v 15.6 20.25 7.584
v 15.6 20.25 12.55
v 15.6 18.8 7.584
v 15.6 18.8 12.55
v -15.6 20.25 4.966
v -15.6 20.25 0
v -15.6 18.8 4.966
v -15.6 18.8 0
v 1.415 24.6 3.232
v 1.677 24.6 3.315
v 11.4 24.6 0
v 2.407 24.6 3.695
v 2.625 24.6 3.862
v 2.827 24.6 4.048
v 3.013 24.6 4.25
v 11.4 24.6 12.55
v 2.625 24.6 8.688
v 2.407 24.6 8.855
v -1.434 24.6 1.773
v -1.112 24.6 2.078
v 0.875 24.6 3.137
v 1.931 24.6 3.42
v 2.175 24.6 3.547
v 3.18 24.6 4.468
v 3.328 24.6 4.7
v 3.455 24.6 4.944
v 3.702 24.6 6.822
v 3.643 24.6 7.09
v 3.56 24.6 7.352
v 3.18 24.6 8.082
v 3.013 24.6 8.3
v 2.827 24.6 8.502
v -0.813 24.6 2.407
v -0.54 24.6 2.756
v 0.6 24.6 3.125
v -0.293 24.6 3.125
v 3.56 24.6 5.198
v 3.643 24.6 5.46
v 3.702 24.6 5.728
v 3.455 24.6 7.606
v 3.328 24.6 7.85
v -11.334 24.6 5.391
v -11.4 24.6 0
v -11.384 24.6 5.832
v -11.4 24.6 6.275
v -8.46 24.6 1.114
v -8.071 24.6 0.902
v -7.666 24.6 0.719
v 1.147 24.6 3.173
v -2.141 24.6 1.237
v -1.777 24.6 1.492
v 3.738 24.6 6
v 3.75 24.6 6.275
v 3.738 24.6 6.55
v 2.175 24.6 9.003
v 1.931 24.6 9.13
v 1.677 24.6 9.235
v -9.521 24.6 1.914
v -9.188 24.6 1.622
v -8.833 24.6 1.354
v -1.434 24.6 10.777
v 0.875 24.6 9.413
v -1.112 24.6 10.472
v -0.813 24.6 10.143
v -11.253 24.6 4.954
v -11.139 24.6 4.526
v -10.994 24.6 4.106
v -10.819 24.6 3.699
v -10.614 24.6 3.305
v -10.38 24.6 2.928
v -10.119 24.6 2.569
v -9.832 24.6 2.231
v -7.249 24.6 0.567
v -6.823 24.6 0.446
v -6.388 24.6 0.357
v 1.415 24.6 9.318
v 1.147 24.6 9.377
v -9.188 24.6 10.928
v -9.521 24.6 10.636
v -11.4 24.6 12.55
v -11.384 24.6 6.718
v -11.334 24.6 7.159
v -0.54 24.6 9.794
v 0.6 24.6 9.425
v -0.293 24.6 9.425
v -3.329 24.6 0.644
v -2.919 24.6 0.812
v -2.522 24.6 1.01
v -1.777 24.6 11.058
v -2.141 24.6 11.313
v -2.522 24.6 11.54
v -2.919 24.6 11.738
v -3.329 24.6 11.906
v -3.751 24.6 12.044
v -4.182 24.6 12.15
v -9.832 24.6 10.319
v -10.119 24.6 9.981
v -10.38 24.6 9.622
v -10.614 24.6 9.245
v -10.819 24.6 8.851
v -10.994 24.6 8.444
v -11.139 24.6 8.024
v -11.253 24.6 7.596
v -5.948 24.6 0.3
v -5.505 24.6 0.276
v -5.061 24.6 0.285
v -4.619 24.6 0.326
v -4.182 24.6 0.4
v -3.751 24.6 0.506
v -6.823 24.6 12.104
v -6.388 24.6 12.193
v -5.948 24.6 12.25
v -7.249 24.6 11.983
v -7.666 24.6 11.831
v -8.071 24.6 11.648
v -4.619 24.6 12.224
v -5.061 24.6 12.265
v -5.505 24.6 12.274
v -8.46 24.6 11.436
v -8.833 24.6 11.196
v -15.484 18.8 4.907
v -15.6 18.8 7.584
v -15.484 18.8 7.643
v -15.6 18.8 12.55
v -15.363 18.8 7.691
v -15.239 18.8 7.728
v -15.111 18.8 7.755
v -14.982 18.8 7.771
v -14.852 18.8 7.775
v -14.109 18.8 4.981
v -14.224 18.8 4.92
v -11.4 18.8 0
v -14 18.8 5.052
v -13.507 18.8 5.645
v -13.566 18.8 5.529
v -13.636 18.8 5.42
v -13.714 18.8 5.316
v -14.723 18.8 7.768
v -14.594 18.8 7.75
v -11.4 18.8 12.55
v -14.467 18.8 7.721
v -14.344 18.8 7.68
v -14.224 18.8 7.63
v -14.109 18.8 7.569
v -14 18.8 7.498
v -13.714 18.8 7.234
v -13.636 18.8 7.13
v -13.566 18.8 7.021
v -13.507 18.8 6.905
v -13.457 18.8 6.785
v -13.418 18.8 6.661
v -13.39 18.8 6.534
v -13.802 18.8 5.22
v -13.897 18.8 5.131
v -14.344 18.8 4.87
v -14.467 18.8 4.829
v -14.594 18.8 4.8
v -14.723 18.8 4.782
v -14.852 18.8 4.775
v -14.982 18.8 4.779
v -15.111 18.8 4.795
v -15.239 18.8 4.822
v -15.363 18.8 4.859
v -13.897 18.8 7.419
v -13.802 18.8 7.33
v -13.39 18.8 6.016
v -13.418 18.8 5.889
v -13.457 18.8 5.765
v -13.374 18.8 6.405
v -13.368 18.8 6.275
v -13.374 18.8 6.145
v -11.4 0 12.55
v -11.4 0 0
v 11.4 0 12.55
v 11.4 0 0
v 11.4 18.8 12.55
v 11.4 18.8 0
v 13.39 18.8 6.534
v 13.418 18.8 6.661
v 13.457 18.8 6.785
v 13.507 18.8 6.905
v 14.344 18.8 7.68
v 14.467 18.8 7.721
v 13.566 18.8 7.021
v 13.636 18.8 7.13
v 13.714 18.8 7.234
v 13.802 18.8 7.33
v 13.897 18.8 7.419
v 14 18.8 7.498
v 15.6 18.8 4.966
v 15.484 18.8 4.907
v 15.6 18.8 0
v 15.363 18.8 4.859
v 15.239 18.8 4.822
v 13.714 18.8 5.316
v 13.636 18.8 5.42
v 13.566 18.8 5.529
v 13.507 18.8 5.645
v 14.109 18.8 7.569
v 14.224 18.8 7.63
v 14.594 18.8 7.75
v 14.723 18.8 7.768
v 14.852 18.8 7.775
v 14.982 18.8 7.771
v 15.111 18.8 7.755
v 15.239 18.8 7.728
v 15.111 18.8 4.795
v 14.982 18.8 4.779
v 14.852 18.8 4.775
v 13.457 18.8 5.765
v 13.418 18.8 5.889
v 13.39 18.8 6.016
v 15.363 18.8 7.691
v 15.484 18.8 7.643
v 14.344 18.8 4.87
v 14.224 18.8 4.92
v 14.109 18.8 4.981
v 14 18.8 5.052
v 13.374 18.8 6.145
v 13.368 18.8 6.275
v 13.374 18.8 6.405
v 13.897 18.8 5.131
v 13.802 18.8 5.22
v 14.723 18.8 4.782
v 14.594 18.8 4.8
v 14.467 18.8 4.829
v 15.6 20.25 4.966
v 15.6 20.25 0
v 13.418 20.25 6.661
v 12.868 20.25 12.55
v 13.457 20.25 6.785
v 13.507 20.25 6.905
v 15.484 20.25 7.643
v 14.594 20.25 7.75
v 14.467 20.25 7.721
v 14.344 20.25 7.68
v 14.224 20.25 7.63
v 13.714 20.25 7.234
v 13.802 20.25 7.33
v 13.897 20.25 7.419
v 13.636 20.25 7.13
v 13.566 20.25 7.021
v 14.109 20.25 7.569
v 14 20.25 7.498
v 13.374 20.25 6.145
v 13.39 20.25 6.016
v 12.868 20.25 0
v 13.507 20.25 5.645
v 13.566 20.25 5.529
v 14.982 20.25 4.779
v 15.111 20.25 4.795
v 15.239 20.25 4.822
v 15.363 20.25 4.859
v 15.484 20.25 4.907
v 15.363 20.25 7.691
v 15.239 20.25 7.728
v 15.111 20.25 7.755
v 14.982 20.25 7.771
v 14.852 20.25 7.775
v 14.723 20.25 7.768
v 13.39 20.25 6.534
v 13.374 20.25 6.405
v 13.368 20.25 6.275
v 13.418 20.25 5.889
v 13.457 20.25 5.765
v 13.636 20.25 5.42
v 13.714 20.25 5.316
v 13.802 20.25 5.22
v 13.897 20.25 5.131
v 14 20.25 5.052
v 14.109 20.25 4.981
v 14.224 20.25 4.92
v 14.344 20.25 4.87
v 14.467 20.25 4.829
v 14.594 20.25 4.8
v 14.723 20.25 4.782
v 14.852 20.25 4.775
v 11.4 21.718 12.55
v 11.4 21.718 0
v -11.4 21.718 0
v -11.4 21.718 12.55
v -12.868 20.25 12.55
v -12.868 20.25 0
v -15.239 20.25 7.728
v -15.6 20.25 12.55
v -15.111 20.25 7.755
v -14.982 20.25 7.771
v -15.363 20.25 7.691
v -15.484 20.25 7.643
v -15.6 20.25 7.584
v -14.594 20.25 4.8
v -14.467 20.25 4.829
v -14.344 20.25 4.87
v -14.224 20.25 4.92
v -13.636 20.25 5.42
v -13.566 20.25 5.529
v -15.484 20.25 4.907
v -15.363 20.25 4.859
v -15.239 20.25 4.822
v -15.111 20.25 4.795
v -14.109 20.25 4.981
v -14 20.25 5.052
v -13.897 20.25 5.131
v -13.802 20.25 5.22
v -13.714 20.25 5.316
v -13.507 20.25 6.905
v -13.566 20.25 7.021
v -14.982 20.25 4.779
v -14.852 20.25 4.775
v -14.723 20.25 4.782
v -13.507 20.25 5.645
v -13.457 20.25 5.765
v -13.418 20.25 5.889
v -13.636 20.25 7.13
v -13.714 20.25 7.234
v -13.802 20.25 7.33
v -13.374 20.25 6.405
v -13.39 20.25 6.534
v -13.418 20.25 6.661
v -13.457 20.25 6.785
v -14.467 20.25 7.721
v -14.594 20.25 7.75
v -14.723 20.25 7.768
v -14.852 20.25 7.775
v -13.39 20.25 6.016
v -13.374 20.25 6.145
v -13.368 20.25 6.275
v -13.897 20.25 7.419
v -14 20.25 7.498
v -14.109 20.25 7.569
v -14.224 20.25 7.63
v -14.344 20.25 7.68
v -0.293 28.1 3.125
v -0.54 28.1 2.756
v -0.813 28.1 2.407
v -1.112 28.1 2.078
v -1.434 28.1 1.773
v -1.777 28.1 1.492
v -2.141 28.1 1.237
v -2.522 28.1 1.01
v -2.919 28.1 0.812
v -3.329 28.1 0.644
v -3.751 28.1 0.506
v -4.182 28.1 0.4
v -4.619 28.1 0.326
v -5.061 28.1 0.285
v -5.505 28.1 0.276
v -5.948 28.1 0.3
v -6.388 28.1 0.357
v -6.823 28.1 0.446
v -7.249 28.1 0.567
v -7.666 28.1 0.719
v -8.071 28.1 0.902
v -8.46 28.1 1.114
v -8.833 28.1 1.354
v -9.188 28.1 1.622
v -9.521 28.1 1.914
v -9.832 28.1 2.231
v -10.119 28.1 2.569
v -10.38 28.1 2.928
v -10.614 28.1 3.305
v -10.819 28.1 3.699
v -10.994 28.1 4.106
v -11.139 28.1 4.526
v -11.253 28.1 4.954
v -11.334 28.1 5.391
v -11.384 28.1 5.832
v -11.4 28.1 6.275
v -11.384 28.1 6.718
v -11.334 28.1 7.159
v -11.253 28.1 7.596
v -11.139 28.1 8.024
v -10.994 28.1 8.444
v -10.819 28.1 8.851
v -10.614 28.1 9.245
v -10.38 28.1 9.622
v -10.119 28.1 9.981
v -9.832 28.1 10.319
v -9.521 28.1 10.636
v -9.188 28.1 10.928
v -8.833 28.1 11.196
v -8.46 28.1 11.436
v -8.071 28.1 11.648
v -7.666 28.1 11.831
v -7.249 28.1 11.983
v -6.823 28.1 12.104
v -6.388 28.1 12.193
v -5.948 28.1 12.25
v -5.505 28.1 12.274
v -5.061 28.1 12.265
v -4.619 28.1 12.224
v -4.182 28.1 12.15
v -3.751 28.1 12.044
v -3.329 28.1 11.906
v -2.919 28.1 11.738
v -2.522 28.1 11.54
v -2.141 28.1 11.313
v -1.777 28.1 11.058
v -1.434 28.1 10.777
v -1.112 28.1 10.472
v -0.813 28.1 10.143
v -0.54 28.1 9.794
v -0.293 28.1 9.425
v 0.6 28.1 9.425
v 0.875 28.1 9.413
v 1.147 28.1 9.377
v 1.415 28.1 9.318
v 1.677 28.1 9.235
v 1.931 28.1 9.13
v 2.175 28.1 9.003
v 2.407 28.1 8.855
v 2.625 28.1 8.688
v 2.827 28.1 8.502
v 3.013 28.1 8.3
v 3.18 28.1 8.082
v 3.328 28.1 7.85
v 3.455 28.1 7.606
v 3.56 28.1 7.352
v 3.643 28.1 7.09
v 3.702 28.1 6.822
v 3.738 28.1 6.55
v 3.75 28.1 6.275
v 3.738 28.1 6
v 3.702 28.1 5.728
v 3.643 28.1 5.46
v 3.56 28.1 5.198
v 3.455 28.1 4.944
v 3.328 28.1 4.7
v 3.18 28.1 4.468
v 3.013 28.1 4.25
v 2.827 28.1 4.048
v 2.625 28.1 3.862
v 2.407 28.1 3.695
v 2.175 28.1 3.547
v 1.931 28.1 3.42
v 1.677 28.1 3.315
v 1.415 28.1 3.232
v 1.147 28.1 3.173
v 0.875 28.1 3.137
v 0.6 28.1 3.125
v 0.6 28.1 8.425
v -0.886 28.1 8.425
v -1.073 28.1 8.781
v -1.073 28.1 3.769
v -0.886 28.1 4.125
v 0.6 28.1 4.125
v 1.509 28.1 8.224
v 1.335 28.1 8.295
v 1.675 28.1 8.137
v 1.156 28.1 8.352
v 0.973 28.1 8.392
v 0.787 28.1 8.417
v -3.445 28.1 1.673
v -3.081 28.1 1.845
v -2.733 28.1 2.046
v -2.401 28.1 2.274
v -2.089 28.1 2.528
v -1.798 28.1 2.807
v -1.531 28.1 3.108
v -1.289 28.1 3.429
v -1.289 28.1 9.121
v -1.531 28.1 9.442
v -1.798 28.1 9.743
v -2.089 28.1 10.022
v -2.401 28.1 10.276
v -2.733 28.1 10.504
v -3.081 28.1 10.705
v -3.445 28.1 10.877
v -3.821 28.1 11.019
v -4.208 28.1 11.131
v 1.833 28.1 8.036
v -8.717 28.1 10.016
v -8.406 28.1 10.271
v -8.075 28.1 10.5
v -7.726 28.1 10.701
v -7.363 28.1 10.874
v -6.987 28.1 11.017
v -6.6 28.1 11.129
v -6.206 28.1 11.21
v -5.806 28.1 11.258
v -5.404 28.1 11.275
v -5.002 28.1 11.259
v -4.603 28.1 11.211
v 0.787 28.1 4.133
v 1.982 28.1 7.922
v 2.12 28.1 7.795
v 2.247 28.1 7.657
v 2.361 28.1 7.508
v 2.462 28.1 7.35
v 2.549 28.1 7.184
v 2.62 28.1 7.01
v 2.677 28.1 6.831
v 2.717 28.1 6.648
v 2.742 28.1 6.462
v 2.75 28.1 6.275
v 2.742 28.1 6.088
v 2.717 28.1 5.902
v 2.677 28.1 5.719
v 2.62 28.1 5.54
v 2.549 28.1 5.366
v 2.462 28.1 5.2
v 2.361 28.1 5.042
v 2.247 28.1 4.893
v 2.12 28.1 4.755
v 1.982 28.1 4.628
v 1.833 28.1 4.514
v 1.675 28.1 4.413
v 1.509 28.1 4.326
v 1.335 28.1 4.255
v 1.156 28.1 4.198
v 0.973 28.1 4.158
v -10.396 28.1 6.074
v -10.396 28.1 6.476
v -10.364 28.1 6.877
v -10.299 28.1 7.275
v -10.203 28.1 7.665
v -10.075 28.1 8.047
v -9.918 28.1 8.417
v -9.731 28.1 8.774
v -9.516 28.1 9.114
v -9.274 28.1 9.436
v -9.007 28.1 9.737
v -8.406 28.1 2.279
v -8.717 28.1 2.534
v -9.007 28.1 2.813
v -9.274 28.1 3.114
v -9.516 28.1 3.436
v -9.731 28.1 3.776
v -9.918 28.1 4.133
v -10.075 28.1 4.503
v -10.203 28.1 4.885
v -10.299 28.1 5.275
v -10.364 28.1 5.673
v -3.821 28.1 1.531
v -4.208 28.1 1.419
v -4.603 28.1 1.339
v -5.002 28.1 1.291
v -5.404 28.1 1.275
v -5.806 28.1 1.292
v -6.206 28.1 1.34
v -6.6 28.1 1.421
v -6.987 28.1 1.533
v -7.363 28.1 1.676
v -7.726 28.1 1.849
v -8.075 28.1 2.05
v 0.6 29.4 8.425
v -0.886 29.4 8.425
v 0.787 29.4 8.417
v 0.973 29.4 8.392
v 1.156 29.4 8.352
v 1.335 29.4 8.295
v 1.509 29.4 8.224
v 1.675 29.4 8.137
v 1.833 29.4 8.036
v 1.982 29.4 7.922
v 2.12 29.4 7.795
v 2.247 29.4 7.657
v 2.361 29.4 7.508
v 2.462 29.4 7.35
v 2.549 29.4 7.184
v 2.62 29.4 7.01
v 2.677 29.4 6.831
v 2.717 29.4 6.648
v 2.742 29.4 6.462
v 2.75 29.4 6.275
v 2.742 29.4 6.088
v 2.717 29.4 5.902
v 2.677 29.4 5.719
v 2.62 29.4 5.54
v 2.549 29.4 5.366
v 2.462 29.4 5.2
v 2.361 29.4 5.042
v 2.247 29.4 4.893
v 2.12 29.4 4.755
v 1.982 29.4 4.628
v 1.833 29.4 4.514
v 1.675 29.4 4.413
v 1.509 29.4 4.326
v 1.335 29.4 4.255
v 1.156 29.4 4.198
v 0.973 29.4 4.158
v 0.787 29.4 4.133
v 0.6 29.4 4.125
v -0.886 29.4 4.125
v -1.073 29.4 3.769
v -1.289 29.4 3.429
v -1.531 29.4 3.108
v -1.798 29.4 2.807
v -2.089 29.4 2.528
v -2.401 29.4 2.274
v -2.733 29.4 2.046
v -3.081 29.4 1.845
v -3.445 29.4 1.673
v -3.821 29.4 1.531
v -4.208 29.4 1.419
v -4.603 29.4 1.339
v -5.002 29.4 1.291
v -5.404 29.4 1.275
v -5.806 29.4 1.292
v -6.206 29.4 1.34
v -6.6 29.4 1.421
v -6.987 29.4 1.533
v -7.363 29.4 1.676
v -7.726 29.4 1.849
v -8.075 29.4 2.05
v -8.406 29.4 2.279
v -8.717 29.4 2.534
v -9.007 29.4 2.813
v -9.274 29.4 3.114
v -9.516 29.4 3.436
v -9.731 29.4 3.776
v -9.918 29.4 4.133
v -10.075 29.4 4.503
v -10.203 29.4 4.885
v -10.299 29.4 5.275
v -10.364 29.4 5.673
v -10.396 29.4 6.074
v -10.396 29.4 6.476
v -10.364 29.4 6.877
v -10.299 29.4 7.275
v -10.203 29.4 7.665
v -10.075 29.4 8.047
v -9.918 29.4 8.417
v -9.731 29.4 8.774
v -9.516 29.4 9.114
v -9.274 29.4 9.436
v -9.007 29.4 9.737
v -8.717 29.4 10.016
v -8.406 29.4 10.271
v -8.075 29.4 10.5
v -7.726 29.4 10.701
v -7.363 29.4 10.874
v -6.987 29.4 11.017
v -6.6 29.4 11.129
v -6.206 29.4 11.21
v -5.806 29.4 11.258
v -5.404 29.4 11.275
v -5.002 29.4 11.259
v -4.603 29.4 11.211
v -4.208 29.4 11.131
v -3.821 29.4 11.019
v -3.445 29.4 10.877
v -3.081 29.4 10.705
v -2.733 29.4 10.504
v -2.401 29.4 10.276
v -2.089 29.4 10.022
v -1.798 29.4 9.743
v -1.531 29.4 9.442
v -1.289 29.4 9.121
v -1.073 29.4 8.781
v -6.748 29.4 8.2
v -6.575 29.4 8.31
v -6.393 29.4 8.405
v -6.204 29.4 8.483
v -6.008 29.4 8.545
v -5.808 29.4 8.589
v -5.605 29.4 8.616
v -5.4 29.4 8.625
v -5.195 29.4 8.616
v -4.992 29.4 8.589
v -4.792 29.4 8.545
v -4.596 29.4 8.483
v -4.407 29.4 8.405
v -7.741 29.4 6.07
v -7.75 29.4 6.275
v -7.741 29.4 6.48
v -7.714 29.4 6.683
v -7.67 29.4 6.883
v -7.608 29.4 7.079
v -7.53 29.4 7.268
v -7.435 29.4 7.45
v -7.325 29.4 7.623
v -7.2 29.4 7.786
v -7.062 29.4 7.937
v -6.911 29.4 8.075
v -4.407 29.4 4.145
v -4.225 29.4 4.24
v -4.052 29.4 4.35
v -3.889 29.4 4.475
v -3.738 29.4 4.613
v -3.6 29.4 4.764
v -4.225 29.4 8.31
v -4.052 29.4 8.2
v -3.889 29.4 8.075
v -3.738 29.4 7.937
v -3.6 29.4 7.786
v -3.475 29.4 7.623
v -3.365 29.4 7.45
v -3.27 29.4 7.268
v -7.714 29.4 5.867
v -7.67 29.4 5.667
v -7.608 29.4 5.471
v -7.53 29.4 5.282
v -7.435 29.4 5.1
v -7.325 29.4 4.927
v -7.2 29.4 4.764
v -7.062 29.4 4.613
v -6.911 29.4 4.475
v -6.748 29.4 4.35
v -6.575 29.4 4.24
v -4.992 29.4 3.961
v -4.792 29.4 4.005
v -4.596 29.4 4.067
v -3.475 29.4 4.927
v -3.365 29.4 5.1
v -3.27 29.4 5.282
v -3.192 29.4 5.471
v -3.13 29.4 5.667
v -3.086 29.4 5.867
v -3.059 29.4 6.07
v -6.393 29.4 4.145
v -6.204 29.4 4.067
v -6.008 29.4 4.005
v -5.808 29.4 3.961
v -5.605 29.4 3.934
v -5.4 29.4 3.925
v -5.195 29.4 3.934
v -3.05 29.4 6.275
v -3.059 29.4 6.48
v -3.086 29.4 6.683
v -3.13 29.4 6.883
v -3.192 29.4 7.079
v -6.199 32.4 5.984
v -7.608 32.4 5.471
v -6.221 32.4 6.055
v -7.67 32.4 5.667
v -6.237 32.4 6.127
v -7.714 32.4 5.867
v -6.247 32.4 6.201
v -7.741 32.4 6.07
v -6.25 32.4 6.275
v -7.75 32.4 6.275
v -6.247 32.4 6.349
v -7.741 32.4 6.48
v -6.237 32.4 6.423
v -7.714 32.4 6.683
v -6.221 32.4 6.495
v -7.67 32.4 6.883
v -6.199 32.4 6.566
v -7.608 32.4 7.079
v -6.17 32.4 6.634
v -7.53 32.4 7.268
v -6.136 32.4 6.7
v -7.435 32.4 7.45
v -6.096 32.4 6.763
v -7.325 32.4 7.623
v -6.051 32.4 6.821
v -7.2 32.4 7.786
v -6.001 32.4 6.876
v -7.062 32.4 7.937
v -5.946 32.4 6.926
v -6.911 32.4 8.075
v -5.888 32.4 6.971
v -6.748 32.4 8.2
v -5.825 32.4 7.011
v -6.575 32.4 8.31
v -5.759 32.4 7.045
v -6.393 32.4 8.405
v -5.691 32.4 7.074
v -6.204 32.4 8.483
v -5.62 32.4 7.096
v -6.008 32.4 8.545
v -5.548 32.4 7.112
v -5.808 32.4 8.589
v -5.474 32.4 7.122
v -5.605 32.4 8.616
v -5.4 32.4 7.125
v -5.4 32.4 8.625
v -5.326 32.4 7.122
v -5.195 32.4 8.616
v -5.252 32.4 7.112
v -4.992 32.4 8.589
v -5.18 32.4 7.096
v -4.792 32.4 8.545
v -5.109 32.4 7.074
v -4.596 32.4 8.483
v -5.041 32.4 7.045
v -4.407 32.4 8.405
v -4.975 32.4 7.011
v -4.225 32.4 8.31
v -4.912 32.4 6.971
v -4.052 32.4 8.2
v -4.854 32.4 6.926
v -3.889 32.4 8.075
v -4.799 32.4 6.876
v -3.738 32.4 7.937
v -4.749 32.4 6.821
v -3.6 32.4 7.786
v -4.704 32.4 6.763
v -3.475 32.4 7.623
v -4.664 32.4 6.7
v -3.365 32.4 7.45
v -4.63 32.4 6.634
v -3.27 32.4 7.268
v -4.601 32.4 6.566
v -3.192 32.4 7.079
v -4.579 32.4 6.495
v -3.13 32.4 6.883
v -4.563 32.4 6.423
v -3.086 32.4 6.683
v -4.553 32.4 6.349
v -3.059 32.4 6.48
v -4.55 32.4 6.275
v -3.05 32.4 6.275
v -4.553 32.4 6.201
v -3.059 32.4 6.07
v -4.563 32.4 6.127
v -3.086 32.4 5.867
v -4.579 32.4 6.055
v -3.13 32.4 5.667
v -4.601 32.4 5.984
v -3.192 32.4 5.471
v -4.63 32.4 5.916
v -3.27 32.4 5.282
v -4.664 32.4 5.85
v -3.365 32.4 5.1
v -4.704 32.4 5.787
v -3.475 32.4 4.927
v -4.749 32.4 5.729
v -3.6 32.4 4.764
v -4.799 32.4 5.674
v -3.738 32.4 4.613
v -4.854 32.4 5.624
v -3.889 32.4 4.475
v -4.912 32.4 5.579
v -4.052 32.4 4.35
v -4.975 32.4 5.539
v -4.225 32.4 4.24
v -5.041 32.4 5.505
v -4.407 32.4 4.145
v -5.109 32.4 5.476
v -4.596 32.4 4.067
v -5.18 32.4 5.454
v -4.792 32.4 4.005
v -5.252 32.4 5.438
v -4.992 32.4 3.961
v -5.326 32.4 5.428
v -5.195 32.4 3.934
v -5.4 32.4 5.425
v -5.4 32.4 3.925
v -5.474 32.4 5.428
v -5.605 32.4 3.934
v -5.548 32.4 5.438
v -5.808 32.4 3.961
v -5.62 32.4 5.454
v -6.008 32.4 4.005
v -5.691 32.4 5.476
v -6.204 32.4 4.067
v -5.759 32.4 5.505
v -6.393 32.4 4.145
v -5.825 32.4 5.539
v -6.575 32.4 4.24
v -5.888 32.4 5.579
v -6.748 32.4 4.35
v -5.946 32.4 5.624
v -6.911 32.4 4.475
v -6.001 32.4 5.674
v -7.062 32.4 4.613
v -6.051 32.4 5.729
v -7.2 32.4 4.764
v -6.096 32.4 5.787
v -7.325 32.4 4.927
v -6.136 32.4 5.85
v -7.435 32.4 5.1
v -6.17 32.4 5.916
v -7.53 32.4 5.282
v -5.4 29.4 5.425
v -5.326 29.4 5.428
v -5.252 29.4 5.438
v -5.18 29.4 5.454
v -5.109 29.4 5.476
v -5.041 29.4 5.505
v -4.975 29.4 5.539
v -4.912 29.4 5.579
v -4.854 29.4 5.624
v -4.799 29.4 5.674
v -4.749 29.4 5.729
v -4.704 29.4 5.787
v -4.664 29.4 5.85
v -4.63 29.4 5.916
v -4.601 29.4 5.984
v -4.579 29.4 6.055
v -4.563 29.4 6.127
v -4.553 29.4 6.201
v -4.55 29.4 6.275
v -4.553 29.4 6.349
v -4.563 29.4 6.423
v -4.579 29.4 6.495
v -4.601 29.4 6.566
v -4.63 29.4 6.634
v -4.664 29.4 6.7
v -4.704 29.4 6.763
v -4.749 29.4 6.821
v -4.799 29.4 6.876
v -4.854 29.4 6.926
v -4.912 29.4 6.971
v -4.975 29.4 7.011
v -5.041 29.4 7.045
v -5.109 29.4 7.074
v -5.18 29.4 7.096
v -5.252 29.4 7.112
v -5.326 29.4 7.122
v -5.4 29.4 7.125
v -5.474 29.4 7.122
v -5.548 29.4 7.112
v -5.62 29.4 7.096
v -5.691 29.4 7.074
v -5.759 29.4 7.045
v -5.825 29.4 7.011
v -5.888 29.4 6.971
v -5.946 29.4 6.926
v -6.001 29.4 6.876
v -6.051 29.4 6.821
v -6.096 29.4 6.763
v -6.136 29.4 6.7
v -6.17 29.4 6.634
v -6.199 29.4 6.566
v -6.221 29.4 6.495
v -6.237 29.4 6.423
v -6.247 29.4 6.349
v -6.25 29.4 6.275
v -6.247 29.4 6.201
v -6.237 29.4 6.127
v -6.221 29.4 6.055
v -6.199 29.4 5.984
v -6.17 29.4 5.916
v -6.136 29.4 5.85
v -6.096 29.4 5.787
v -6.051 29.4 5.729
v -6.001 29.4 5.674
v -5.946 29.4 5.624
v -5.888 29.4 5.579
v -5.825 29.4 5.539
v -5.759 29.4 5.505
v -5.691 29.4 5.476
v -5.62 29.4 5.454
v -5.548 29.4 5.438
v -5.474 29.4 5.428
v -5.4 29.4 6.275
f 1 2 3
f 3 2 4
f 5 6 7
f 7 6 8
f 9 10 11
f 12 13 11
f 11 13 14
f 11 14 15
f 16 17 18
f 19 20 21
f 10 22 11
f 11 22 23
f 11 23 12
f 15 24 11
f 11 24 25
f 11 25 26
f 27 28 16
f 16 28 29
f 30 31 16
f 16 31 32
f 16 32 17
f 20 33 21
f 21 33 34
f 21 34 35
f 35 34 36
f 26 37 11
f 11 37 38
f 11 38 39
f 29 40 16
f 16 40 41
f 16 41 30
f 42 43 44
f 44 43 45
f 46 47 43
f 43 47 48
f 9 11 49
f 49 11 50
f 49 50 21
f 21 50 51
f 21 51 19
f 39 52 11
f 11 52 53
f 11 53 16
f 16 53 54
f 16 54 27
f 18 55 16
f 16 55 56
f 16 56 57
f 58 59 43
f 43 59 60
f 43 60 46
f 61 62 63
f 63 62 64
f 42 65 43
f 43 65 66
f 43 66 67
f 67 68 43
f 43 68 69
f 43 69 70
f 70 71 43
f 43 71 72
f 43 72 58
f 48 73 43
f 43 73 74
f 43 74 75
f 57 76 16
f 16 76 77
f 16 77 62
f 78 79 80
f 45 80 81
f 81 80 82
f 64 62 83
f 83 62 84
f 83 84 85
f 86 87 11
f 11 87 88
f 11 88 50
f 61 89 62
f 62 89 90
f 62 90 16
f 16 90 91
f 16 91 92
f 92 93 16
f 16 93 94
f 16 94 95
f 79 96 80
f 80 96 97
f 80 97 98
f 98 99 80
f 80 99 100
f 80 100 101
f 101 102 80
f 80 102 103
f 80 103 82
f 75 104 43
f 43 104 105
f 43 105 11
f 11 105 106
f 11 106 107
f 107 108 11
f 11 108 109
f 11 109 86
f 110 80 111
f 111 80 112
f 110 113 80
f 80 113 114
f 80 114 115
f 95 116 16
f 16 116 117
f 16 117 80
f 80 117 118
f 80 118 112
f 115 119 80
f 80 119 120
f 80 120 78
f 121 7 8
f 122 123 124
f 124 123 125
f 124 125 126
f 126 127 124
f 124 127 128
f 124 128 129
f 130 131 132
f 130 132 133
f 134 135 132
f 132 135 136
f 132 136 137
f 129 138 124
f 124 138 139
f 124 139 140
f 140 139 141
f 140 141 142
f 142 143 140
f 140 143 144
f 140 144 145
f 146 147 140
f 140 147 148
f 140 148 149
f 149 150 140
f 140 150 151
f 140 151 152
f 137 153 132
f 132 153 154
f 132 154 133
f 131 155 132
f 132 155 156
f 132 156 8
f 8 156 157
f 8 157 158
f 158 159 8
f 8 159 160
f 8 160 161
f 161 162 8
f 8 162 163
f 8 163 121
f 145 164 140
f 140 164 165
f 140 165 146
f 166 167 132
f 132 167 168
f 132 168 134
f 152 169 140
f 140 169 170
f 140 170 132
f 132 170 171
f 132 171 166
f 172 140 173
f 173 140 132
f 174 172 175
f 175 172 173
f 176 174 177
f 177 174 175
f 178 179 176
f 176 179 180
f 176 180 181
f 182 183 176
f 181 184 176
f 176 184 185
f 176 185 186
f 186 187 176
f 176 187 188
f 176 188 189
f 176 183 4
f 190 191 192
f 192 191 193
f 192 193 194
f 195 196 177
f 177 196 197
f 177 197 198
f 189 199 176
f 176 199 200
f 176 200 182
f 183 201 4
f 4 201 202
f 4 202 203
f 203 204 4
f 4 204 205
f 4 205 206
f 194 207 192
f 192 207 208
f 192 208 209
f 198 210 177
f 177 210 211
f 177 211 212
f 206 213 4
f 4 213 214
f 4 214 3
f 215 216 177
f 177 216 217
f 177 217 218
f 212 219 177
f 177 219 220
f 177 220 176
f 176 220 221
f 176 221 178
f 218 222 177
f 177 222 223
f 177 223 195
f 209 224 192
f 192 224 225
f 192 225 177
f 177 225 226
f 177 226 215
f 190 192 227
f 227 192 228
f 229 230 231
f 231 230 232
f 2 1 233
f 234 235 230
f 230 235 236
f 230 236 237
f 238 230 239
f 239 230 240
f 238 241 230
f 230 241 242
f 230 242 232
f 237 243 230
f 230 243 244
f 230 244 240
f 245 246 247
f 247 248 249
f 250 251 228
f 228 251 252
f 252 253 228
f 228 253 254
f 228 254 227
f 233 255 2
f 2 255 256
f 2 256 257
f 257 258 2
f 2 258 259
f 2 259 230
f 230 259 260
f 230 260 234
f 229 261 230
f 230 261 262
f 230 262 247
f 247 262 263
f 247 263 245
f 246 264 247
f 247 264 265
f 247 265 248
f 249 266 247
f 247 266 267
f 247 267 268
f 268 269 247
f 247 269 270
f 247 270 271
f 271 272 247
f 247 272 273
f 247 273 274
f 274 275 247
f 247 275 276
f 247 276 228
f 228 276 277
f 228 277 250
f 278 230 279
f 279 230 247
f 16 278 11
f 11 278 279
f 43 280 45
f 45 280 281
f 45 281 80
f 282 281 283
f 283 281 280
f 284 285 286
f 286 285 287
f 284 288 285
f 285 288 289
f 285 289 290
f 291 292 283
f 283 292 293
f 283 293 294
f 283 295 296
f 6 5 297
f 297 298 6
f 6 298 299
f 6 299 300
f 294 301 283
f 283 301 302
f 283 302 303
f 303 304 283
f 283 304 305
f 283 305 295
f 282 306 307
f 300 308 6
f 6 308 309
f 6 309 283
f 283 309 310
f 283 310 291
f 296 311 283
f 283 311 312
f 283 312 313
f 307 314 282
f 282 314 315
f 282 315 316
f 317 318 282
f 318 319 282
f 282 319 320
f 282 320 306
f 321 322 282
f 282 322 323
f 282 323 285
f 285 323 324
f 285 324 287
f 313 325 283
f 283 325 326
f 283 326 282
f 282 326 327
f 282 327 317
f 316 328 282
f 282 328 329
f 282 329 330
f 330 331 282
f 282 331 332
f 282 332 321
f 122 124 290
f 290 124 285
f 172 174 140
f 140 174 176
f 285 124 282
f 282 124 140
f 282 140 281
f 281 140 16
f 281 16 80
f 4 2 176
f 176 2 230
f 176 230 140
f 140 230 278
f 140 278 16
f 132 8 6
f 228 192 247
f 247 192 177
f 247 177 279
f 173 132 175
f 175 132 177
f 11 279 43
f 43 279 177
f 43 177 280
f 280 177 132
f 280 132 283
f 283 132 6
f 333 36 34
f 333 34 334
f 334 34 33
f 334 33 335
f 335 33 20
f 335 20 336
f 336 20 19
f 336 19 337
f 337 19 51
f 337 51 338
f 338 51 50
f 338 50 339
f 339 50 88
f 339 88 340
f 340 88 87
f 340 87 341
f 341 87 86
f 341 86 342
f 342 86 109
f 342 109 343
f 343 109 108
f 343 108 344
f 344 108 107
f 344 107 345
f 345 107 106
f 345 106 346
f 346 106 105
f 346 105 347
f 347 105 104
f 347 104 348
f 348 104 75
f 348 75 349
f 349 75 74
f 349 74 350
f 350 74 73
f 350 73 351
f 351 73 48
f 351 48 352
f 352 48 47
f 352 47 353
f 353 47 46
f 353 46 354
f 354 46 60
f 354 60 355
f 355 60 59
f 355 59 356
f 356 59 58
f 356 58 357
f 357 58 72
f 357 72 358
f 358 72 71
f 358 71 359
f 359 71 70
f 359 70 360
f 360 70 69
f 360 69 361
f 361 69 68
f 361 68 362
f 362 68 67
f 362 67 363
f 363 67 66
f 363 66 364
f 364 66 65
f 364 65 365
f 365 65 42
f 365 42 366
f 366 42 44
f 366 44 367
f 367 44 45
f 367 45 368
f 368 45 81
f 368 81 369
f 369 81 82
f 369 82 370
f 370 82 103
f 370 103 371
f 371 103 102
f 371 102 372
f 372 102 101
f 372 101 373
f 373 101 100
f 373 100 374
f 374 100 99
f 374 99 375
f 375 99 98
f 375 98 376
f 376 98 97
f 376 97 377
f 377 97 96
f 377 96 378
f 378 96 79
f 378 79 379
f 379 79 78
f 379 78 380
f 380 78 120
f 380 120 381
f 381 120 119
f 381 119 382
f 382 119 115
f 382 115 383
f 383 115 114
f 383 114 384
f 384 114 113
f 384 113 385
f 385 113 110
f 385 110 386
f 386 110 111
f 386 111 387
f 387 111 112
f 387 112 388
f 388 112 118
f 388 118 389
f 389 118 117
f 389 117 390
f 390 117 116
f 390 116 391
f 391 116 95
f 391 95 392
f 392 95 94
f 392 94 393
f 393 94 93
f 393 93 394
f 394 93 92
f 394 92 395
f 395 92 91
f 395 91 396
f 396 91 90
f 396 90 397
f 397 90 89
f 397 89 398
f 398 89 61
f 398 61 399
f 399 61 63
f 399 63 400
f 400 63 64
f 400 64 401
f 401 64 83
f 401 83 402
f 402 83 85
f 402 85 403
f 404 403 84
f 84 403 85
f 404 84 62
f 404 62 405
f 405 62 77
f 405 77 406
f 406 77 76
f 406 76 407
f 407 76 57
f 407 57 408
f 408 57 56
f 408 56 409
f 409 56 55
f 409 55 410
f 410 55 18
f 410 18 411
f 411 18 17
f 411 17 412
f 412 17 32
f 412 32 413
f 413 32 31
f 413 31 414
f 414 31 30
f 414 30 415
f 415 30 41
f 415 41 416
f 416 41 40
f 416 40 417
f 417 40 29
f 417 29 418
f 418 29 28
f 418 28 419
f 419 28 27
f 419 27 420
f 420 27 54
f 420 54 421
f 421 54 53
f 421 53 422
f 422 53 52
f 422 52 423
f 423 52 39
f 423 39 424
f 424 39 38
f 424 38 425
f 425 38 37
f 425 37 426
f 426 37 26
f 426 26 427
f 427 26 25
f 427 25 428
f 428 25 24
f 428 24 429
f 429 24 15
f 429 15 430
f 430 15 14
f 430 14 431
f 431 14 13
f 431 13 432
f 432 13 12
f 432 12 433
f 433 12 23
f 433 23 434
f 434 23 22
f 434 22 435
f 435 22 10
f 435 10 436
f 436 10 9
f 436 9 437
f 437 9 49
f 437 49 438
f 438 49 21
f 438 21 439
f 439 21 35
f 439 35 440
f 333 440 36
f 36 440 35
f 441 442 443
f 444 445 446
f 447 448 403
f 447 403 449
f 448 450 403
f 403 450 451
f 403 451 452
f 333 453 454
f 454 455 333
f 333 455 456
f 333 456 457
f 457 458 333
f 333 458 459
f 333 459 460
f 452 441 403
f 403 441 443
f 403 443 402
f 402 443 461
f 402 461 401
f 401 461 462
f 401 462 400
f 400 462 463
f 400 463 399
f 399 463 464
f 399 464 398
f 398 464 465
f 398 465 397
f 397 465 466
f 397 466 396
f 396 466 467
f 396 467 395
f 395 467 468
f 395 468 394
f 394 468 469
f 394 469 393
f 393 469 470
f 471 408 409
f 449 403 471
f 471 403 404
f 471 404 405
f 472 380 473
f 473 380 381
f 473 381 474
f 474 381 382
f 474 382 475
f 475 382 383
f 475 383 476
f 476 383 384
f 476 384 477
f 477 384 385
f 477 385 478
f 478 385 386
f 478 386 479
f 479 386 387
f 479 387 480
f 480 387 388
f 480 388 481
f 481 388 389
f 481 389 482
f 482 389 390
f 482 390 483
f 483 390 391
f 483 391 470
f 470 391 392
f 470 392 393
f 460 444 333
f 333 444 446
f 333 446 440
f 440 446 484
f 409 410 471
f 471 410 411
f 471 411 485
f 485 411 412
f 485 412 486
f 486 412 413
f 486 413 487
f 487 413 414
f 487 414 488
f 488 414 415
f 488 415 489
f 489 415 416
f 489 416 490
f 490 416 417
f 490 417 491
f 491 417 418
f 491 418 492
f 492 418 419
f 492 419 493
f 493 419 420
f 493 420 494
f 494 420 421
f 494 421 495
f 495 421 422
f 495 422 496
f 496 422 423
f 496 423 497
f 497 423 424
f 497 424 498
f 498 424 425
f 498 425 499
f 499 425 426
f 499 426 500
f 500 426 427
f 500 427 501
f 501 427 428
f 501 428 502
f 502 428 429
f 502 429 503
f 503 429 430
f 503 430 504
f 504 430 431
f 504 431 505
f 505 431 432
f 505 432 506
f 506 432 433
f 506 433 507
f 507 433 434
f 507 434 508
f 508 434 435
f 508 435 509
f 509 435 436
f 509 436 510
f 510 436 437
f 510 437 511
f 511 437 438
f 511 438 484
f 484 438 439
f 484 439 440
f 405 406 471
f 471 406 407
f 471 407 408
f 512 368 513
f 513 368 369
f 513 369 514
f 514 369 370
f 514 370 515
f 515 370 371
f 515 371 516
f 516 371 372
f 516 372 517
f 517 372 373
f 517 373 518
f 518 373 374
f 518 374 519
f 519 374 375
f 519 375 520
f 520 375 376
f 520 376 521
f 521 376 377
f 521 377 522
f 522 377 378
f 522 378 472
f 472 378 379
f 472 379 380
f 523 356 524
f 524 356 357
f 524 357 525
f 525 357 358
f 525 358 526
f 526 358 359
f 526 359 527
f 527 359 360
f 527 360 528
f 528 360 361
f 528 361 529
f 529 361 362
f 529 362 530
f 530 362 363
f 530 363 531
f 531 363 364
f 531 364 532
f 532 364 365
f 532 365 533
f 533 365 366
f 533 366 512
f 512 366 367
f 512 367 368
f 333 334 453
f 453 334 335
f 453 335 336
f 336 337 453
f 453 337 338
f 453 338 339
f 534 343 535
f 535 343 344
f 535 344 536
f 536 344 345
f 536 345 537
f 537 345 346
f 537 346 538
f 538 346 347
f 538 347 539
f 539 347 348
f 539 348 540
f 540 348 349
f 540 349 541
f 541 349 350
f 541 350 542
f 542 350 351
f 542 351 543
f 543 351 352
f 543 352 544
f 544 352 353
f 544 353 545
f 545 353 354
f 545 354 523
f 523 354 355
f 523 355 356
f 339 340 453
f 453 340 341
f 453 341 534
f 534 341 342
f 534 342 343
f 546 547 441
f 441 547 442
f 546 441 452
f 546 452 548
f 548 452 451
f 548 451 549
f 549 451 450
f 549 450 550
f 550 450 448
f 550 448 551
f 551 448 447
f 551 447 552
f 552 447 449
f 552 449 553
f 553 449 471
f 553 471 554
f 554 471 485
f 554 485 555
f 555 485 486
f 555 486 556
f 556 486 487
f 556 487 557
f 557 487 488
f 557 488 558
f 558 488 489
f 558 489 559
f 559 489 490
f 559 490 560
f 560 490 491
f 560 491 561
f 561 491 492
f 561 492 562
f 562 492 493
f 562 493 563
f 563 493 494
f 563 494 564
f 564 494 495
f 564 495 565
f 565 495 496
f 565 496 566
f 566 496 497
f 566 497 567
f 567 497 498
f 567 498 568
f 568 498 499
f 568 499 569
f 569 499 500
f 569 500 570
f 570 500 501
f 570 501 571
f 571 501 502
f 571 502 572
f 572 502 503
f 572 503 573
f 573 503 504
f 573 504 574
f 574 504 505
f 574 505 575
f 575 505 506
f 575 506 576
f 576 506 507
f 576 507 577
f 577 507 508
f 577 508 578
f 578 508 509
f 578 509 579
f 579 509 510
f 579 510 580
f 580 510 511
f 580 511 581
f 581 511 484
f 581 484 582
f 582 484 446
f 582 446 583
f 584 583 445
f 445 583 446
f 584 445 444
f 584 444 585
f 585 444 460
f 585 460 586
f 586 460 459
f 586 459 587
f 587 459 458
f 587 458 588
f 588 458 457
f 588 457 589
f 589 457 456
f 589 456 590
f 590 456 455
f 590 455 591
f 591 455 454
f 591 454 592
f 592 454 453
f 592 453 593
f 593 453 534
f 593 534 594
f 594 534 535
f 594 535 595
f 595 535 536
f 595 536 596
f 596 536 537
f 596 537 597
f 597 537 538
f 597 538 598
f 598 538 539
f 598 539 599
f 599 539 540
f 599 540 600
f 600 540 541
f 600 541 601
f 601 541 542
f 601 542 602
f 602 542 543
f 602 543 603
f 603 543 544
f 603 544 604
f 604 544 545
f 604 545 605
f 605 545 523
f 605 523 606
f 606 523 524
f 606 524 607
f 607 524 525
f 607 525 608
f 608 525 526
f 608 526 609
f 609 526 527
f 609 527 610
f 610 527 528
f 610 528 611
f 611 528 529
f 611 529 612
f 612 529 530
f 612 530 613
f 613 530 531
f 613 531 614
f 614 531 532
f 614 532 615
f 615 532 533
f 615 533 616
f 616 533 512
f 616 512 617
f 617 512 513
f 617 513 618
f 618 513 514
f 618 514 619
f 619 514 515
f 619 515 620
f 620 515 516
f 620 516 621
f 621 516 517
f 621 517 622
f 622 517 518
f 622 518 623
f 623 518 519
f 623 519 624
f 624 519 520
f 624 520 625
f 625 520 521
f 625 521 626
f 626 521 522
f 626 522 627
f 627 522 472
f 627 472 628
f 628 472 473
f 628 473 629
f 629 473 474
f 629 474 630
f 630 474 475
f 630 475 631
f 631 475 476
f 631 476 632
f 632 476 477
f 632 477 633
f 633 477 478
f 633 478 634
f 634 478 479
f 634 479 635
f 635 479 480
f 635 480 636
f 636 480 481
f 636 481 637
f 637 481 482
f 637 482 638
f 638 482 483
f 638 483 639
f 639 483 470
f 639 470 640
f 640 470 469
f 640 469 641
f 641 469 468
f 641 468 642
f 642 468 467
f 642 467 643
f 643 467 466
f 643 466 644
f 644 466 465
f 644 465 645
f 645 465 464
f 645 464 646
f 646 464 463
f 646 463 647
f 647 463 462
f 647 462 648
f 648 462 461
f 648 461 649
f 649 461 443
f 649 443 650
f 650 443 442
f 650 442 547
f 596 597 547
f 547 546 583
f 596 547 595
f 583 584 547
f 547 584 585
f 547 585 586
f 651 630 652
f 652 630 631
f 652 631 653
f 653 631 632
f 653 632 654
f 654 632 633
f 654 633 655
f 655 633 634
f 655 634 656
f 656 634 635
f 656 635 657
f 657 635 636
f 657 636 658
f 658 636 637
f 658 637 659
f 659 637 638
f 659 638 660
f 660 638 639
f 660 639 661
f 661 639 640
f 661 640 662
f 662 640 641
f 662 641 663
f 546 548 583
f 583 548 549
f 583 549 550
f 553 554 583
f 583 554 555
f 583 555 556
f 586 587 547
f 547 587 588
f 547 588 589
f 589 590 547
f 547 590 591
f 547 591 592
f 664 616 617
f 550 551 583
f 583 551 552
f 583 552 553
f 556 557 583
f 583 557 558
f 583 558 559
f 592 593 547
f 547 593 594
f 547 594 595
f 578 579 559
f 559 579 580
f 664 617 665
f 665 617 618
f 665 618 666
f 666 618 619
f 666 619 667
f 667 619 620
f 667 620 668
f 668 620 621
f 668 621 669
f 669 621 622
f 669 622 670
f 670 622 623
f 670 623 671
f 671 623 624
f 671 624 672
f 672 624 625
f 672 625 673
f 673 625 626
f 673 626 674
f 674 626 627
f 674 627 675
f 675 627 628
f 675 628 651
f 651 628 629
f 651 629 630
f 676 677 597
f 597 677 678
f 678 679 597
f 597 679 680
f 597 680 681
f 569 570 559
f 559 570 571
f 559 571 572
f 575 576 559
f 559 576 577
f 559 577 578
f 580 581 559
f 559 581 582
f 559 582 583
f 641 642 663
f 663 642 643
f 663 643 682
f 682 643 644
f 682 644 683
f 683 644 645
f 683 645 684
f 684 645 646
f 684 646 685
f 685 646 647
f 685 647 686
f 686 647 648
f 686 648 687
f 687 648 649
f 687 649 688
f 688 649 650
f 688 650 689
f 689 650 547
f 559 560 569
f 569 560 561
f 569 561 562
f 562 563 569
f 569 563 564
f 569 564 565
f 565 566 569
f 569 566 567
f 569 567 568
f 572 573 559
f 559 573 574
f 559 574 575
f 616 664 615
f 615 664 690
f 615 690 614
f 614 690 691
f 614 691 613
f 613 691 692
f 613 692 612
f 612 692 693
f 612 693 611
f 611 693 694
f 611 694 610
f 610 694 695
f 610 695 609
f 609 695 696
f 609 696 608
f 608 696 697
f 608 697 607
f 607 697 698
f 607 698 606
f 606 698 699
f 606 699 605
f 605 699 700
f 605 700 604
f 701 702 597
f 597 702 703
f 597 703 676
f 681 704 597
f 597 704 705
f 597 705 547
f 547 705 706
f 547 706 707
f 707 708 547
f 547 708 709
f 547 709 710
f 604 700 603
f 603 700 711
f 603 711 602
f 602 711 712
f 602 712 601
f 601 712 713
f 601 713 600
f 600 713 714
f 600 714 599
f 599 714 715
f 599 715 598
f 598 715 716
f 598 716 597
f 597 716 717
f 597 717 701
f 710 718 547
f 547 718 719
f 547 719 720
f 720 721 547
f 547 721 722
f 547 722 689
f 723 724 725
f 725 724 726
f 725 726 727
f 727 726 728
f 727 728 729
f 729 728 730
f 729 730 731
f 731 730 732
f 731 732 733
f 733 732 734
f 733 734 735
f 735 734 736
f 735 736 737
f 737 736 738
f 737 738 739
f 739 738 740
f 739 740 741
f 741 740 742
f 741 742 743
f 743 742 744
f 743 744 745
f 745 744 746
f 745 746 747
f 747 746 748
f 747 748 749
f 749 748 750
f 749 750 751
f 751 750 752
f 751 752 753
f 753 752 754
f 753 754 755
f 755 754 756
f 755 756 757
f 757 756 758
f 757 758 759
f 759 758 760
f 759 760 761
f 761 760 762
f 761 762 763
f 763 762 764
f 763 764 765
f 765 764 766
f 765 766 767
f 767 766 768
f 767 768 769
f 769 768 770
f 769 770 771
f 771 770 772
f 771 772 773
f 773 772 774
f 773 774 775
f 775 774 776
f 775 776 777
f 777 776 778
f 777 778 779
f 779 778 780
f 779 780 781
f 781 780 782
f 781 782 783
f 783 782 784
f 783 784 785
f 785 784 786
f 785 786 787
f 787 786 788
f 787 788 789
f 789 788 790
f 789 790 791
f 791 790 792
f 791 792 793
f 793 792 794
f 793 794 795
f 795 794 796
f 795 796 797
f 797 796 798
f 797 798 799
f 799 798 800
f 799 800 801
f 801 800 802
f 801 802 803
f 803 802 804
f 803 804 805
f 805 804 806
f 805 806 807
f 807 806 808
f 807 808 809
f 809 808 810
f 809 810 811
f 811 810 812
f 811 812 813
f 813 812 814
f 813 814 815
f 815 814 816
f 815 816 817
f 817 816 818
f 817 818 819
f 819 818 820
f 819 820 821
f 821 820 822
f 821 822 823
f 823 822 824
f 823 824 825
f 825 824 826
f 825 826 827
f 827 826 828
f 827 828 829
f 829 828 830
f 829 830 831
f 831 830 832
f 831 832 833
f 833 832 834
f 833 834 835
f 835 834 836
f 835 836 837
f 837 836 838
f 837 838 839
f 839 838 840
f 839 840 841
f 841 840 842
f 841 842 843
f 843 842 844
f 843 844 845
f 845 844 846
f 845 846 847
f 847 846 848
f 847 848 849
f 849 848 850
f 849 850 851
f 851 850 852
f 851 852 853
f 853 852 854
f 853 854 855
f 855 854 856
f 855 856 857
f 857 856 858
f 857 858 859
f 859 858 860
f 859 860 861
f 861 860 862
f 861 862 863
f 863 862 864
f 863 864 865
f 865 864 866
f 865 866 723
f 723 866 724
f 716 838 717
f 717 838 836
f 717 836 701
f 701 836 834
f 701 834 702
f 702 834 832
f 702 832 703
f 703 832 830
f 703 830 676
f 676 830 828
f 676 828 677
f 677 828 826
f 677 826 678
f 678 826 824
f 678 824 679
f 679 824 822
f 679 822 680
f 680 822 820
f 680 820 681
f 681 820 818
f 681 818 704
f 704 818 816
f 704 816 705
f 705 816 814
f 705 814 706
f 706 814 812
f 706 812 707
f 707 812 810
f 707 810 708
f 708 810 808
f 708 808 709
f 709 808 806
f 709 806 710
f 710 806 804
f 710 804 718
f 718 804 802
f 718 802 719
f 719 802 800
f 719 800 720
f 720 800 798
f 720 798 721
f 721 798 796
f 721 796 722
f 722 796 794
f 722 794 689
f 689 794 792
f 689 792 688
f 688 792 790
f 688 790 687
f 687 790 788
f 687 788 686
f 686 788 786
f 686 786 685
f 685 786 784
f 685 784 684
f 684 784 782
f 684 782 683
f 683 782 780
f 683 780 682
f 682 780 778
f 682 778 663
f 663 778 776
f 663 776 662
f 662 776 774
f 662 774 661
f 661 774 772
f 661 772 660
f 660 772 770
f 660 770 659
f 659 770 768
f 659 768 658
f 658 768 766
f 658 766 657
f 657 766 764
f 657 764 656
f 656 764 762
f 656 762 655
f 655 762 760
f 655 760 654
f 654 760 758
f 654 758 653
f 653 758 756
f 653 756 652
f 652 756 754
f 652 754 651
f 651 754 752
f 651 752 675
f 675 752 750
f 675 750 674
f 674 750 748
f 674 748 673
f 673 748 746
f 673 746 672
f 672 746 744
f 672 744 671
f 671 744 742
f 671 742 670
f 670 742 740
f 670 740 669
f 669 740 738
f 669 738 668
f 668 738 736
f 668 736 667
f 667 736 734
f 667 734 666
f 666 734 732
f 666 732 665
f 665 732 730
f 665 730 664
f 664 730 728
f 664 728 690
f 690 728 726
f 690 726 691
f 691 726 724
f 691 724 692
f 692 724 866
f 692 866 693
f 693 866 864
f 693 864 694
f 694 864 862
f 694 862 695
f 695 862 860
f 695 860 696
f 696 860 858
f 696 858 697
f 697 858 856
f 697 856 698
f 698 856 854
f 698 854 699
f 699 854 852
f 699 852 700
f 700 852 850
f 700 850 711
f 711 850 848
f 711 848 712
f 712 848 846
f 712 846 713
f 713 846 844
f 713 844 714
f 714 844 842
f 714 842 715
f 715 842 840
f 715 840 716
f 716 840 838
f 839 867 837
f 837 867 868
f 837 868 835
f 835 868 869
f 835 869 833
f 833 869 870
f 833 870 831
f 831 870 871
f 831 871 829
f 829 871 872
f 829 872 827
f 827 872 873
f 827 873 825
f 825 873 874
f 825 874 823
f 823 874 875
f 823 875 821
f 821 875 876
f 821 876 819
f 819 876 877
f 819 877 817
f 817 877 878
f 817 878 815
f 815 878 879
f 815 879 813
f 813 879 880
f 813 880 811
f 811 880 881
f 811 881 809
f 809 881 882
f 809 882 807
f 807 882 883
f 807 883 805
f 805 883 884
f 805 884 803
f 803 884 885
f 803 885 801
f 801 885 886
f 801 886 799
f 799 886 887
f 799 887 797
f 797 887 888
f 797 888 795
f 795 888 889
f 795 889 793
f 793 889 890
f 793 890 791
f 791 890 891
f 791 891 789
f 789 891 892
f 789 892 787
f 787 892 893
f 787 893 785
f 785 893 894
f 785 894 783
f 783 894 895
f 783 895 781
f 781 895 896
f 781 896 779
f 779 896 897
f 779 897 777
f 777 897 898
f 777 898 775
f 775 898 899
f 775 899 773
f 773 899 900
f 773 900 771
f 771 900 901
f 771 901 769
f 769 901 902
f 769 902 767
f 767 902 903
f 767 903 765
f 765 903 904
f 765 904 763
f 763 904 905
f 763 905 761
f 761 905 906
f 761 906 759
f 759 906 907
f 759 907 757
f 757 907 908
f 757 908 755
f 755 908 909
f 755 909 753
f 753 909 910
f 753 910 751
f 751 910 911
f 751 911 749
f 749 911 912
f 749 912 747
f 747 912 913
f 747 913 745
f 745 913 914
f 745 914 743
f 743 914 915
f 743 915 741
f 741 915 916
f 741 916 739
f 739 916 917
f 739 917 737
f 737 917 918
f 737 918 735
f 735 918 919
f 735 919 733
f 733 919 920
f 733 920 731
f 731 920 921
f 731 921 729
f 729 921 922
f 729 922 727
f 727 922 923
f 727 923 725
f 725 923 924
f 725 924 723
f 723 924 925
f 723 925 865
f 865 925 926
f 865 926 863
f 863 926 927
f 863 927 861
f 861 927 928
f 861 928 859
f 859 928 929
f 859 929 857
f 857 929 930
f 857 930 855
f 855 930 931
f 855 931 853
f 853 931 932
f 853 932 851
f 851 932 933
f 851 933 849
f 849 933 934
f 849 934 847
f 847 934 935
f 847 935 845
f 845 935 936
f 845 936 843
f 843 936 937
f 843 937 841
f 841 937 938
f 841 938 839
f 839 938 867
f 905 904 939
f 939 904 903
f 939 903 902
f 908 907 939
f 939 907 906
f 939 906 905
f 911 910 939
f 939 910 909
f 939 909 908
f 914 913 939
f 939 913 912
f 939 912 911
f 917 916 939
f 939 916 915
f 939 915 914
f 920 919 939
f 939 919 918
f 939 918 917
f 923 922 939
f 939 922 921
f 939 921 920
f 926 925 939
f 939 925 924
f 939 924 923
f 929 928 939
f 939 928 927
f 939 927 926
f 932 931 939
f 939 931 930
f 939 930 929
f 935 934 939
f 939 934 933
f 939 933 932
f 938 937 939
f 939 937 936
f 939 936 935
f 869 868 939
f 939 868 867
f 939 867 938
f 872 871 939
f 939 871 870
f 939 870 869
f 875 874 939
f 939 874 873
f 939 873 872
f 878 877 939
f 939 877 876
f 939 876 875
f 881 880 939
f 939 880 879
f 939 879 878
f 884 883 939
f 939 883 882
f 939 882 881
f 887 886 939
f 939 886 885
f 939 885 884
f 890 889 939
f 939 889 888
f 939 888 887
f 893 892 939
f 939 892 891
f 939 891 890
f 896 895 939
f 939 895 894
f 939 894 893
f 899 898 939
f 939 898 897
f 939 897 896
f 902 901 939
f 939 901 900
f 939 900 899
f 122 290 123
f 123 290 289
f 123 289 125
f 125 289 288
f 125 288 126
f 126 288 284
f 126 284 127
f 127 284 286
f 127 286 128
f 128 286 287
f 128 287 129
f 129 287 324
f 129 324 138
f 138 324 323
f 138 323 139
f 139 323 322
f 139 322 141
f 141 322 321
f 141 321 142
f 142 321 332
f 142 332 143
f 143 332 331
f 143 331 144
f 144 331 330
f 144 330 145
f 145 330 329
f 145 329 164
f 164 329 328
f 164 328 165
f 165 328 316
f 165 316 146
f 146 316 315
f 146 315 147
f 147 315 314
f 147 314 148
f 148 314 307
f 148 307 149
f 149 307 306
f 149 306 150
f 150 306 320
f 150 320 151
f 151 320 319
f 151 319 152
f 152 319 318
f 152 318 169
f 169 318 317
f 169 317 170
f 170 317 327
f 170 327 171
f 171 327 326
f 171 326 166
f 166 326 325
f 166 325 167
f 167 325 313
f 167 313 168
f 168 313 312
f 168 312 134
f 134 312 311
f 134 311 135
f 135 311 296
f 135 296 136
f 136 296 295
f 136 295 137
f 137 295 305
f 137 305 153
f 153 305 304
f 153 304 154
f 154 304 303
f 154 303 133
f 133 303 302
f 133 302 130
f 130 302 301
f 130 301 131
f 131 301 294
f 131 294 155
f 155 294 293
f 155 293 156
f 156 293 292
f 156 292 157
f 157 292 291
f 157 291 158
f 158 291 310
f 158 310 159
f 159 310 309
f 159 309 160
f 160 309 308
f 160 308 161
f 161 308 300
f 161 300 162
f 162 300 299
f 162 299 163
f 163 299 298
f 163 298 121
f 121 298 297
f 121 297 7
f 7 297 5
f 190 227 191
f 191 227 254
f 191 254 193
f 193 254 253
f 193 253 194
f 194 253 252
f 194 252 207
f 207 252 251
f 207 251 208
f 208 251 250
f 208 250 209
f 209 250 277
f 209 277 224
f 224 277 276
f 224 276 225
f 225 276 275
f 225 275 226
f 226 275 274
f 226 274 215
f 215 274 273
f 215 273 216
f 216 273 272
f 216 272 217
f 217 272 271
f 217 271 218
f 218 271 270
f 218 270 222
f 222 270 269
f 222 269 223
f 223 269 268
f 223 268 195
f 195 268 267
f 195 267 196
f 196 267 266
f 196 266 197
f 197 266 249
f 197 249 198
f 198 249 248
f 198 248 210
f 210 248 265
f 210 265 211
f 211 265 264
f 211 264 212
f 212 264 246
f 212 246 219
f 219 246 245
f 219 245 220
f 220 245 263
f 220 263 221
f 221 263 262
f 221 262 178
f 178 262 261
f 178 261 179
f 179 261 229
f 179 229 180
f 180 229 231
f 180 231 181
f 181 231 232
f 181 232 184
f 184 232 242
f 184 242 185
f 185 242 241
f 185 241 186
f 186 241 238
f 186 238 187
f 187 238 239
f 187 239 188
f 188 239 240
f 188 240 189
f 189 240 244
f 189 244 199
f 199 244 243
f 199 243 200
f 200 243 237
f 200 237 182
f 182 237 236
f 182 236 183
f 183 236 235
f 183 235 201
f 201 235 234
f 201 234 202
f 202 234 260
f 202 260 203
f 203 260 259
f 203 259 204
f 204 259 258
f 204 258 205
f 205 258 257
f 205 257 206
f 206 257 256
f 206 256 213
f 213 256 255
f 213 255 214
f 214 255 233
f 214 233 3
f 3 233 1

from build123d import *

# Parameters (mm, degrees)
ESTRUSIONE_ESTRUSIONE2_DEPTH = 12.55
ESTRUSIONE_ESTRUSIONE3_DEPTH = 3.5
ESTRUSIONE_ESTRUSIONE4_DEPTH = 1.3
SCHIZZO4_R                   = 2.35
SCHIZZO4_R_2                 = 0.85
ESTRUSIONE_ESTRUSIONE5_DEPTH = 3
TAGLIO_ESTRUSIONE1_REACH     = 30.477
SCHIZZO6_R                   = 1.5


with BuildPart() as part:
    # Schizzo1 → Estrusione-Estrusione2 (new body)
    with BuildSketch(Plane.XY):
        Polygon((11.4, 21.717893219), (12.867893219, 20.25), (15.6, 20.25), (15.6, 18.8), (11.4, 18.8), (11.4, 0), (-11.4, 0), (-11.4, 18.8), (-15.6, 18.8), (-15.6, 20.25), (-12.867893219, 20.25), (-11.4, 21.717893219), (-11.4, 24.6), (11.4, 24.6), align=None)
    extrude(amount=ESTRUSIONE_ESTRUSIONE2_DEPTH)

    # Schizzo2 → Estrusione-Estrusione3 (add)
    with BuildSketch(Plane(origin=(0, 24.6, 0), x_dir=(1, 0, 0), z_dir=(0, 1, 0))):
        with BuildLine():
            Line((0.6, -3.125), (-0.293386641, -3.125))
            ThreePointArc((-0.293386641, -3.125), (-11.4, -6.275), (-0.293386641, -9.425))
            Line((-0.293386641, -9.425), (0.6, -9.425))
            ThreePointArc((0.6, -9.425), (3.75, -6.275), (0.6, -3.125))
        make_face()
    extrude(amount=ESTRUSIONE_ESTRUSIONE3_DEPTH)

    # Schizzo3 → Estrusione-Estrusione4 (add)
    with BuildSketch(Plane(origin=(0, 28.1, 0), x_dir=(1, 0, 0), z_dir=(0, 1, 0))):
        with BuildLine():
            Line((-0.885855563, -8.425), (0.6, -8.425))
            ThreePointArc((0.6, -8.425), (2.75, -6.275), (0.6, -4.125))
            Line((0.6, -4.125), (-0.885855563, -4.125))
            ThreePointArc((-0.885855563, -4.125), (-10.4, -6.275), (-0.885855563, -8.425))
        make_face()
    extrude(amount=ESTRUSIONE_ESTRUSIONE4_DEPTH)

    # Schizzo4 → Estrusione-Estrusione5 (add)
    with BuildSketch(Plane(origin=(0, 29.4, 0), x_dir=(1, 0, 0), z_dir=(0, 1, 0))):
        with Locations(Location((-5.4, -6.275, 0), (0, 0, 270))):
            Circle(SCHIZZO4_R)
        with Locations(Location((-5.4, -6.275, 0), (0, 0, 270))):
            Circle(SCHIZZO4_R_2, mode=Mode.SUBTRACT)
    extrude(amount=ESTRUSIONE_ESTRUSIONE5_DEPTH)

    # Schizzo6 → Taglio-Estrusione1 (cut, up to next)
    with BuildSketch(Plane(origin=(0, 20.25, 0), x_dir=(1, 0, 0), z_dir=(0, 1, 0)), mode=Mode.PRIVATE) as taglio_estrusione1_sk1:
        with Locations((-14.867893219, -6.275)):
            Circle(SCHIZZO6_R)
    taglio_estrusione1_tool1 = extrude(taglio_estrusione1_sk1.sketch, amount=-TAGLIO_ESTRUSIONE1_REACH, mode=Mode.PRIVATE) & part.part
    # Schizzo6 → Taglio-Estrusione1 (cut, up to next)
    with BuildSketch(Plane(origin=(0, 20.25, 0), x_dir=(1, 0, 0), z_dir=(0, 1, 0)), mode=Mode.PRIVATE) as taglio_estrusione1_sk2:
        with Locations((14.867893219, -6.275)):
            Circle(SCHIZZO6_R)
    taglio_estrusione1_tool2 = extrude(taglio_estrusione1_sk2.sketch, amount=-TAGLIO_ESTRUSIONE1_REACH, mode=Mode.PRIVATE) & part.part
    add(taglio_estrusione1_tool1.solids().sort_by_distance((-14.867893, 20.25, 6.275))[0], mode=Mode.SUBTRACT)
    add(taglio_estrusione1_tool2.solids().sort_by_distance((14.867893, 20.25, 6.275))[0], mode=Mode.SUBTRACT)


solid = part.part
